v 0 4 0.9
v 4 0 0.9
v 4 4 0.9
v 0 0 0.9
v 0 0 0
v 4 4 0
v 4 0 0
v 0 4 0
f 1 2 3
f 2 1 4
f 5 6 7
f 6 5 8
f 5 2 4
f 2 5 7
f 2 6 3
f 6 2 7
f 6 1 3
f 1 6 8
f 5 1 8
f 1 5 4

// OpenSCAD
/* Warning, this is a very basic generator with a lot of approximation 
input data : [VQFN, ZXX, 4x4x0.9mm, 28, , B, C04-00532B]
generated by com.zoubworld.electronics.cad.model3d.Basic
Date : Sun Feb 15 10:50:48 CET 2026
*/

//body
color("black")
translate([0,0,0])
cube([4.0,4.0,0.9], center=false);
